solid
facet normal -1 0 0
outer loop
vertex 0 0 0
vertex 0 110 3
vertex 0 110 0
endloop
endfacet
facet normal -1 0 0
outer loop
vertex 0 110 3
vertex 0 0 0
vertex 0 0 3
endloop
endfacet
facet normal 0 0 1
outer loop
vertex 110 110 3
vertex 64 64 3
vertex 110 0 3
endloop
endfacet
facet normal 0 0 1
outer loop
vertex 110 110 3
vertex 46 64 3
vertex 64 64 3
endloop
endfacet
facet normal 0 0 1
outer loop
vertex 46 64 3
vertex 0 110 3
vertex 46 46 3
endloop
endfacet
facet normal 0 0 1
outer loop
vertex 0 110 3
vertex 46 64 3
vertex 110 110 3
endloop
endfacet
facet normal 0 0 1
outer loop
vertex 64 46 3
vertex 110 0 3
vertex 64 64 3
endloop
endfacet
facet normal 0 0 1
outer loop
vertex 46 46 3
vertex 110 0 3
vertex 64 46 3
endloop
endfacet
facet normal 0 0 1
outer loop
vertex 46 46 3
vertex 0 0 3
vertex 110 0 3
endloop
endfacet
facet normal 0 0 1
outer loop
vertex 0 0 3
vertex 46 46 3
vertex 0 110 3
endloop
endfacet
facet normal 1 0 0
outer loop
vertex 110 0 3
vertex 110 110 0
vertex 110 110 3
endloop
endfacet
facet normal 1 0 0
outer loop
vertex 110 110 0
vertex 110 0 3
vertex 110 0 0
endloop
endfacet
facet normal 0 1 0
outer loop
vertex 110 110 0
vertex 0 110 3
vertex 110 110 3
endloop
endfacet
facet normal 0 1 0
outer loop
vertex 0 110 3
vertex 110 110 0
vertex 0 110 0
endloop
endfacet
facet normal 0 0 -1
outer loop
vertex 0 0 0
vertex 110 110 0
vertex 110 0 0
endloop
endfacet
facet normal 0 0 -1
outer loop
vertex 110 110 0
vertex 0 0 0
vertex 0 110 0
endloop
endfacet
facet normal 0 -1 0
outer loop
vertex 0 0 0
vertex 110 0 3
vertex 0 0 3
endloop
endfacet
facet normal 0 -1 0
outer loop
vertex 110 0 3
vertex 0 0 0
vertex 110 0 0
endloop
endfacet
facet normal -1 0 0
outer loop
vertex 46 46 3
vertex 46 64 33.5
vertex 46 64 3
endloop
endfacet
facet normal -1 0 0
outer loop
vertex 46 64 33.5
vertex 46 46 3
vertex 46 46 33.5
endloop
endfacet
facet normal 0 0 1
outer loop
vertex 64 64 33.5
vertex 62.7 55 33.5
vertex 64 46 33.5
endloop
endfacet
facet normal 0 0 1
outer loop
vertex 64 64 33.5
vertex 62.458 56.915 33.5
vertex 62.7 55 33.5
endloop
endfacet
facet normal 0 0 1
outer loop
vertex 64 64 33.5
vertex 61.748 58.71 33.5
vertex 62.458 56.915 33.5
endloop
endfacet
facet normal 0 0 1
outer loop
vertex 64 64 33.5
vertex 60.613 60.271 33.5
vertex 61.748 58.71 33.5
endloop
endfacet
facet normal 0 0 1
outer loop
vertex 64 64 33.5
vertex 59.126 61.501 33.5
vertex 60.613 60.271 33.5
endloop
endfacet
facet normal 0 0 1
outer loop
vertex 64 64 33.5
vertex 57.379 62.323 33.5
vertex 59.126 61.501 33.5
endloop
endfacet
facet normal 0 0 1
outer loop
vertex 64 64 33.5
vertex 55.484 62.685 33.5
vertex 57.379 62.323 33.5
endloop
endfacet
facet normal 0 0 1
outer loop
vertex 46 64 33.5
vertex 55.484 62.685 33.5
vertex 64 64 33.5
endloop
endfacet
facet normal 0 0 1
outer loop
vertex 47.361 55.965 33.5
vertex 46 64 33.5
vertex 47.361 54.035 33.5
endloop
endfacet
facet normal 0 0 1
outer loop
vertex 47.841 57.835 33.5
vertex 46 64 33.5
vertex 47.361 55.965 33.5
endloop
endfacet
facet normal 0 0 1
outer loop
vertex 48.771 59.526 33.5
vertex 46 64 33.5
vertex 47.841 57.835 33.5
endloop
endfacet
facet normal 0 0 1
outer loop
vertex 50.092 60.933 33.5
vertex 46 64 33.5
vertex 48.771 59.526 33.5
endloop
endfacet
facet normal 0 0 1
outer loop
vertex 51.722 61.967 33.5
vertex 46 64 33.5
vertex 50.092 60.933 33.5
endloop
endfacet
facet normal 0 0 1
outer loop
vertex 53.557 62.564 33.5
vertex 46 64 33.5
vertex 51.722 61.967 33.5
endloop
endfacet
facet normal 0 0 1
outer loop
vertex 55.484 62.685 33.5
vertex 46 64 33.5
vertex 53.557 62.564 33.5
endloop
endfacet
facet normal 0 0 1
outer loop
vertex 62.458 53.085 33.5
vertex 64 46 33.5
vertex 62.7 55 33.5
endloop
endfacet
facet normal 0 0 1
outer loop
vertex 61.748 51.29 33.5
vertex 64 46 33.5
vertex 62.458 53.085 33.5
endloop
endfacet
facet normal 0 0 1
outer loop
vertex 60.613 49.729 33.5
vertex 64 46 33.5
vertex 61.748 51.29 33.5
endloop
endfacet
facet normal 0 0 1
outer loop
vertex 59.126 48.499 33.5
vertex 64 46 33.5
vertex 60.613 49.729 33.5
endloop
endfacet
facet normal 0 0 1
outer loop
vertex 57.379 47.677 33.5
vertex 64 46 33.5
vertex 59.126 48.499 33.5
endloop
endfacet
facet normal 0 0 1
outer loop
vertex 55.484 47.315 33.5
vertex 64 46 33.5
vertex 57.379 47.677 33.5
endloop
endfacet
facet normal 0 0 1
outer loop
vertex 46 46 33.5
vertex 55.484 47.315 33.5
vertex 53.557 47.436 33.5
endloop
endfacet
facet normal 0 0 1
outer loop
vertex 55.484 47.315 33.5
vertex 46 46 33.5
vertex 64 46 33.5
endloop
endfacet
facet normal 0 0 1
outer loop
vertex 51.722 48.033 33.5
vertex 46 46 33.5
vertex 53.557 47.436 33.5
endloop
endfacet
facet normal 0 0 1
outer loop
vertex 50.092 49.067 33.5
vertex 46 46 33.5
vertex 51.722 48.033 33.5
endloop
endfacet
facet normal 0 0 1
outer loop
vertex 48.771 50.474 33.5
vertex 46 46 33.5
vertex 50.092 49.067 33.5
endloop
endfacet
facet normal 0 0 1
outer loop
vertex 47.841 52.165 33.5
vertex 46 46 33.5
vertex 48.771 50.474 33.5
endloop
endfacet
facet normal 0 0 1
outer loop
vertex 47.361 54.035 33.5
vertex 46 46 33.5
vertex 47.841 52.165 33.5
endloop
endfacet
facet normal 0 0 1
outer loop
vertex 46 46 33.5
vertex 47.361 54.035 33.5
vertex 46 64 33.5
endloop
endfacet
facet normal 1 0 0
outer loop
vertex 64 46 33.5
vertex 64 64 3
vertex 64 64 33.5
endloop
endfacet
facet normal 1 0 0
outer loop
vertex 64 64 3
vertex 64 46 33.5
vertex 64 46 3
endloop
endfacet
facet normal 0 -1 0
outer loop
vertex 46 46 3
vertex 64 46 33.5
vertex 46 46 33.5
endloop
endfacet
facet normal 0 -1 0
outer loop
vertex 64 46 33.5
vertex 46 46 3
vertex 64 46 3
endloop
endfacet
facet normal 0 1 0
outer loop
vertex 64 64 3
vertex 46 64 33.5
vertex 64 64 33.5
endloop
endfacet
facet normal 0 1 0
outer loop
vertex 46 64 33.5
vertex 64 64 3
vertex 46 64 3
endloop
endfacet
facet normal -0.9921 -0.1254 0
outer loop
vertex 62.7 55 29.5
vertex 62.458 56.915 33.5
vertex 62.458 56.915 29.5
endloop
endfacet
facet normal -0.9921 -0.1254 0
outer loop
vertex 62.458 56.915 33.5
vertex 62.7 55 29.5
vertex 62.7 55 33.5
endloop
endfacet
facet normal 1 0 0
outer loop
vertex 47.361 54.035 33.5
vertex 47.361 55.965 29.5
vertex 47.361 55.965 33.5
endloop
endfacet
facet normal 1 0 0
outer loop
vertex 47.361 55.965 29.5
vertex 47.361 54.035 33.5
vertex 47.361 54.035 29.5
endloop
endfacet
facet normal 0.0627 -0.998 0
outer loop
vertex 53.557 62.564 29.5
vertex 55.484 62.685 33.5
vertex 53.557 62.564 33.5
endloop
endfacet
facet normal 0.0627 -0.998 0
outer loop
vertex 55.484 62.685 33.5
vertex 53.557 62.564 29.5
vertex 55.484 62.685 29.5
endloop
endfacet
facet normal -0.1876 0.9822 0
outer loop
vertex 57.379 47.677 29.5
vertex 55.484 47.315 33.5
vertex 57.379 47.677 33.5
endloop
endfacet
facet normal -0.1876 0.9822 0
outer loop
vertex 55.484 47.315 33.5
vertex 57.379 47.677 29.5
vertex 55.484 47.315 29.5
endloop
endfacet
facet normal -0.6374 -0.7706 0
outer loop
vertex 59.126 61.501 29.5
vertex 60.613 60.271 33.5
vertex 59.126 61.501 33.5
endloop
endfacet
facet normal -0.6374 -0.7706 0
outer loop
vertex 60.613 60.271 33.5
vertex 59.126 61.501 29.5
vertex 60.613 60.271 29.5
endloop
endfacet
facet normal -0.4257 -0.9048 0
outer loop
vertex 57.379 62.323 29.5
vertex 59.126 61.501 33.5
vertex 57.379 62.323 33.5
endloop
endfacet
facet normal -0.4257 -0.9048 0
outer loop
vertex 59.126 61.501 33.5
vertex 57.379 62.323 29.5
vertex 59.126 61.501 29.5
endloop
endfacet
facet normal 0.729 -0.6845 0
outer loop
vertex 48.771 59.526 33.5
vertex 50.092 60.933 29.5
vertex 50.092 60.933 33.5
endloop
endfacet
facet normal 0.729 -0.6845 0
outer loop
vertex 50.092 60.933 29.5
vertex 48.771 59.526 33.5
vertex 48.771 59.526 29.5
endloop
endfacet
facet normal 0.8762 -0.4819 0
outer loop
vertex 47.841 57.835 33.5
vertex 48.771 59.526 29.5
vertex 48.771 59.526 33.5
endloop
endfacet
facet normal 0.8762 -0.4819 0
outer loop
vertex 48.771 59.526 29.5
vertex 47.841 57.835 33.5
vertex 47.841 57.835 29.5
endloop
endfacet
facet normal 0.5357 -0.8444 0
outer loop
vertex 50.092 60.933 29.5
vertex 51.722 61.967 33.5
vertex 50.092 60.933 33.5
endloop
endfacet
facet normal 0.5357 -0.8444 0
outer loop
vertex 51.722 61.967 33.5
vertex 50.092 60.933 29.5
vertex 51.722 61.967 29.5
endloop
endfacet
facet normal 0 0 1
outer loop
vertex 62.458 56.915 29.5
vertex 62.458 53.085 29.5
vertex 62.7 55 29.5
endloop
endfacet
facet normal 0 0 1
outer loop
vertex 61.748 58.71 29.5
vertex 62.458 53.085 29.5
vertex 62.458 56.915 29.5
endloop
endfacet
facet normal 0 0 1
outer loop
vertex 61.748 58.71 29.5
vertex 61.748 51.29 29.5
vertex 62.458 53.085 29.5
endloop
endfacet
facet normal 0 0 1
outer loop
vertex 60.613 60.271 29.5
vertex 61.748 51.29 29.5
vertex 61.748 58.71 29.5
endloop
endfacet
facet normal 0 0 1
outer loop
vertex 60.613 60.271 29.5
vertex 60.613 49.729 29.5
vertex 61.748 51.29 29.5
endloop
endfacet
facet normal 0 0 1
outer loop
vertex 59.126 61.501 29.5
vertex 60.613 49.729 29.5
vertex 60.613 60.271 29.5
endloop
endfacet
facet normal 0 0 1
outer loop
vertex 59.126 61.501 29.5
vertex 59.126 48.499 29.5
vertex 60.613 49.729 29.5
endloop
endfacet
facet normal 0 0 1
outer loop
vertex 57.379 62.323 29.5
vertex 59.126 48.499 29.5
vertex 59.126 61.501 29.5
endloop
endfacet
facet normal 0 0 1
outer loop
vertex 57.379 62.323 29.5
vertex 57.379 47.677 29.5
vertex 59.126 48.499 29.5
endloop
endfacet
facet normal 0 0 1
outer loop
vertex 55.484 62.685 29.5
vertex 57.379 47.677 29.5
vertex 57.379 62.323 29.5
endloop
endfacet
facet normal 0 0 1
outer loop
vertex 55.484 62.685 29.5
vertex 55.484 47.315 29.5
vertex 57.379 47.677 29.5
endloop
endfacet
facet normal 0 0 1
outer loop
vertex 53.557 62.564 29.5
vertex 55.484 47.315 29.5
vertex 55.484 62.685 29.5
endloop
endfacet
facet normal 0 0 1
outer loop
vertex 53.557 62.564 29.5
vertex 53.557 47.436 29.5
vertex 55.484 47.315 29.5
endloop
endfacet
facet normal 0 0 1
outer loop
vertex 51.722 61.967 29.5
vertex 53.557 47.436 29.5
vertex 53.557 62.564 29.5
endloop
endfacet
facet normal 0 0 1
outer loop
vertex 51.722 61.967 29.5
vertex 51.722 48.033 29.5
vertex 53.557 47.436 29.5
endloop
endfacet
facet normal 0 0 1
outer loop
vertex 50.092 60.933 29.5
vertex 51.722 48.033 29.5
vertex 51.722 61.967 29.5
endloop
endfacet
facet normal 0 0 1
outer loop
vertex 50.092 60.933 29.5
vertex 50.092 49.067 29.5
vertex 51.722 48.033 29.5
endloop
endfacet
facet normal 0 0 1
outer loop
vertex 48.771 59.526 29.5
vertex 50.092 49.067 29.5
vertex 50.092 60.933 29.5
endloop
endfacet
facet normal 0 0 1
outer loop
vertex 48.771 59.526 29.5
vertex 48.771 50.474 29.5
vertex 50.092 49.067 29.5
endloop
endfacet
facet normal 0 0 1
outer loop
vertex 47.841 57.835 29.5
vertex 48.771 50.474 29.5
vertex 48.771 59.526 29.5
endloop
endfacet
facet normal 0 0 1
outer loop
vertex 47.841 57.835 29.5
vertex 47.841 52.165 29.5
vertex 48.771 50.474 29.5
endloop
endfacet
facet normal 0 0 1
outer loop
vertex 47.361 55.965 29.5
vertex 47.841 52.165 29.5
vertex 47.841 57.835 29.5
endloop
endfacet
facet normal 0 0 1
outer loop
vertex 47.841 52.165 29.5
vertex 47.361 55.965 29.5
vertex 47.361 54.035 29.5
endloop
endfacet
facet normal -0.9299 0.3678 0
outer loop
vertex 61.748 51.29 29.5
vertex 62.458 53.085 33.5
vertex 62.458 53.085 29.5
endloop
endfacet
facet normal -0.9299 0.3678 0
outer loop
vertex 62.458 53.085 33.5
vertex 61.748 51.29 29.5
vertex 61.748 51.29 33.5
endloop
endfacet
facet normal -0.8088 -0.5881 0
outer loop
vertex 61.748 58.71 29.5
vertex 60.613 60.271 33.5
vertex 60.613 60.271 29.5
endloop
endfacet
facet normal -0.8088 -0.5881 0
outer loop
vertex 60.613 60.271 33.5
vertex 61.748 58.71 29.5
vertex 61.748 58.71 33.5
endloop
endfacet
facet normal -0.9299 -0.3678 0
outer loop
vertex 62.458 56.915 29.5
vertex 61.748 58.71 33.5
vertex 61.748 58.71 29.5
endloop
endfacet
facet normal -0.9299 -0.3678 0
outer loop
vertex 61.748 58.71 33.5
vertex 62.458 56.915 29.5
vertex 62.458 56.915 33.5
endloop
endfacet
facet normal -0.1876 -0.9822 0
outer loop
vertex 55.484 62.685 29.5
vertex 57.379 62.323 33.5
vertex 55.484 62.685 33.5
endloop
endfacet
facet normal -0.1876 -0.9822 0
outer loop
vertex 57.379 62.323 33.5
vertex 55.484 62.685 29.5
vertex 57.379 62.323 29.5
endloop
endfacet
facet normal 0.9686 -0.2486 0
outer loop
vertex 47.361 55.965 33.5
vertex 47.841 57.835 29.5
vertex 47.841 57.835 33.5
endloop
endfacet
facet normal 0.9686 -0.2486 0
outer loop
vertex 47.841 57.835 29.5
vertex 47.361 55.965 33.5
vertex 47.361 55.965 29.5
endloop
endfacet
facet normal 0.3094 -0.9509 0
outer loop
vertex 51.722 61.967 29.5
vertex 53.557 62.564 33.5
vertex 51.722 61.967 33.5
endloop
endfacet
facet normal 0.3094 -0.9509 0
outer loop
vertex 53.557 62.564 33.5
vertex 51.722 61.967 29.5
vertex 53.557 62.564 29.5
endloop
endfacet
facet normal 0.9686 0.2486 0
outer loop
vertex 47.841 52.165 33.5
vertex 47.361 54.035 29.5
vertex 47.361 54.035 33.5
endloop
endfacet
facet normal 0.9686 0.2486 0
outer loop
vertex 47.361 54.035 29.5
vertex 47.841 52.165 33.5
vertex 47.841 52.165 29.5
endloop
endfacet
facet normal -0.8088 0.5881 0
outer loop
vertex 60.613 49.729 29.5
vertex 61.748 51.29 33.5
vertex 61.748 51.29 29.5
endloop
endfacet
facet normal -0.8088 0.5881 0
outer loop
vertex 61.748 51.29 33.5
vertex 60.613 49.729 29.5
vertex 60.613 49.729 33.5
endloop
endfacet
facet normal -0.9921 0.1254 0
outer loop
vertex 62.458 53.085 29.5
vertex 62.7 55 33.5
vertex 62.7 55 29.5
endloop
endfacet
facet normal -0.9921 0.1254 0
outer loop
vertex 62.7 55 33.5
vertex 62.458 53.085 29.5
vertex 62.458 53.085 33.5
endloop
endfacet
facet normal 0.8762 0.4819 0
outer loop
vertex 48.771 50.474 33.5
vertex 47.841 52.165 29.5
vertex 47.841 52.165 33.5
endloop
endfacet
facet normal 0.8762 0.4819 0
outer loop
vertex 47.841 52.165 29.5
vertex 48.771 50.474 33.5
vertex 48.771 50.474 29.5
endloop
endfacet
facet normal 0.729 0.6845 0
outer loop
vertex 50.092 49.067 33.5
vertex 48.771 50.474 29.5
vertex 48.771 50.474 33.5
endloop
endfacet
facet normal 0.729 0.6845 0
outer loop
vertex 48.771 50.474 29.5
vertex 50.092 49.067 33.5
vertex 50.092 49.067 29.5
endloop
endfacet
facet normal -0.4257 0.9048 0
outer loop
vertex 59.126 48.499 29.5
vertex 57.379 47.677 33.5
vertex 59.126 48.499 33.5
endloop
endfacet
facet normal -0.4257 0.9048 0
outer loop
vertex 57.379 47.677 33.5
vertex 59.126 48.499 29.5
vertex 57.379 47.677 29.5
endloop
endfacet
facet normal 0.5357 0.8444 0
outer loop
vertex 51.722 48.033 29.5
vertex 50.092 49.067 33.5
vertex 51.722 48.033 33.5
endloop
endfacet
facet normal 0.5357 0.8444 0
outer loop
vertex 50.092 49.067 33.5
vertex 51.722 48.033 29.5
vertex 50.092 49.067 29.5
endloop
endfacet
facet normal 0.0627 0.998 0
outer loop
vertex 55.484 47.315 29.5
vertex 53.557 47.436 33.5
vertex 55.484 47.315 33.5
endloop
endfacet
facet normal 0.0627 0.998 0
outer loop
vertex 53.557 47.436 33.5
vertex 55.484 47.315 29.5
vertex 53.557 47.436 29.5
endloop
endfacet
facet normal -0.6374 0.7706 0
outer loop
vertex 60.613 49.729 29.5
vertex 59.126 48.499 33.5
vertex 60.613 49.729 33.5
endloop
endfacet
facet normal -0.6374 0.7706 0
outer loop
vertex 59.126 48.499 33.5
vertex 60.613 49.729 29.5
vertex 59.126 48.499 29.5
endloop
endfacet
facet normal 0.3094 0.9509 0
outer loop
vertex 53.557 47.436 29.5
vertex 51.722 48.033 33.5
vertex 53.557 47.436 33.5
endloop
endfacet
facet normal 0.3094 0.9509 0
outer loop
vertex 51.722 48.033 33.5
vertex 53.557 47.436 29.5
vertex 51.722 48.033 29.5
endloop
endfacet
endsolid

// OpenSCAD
length = 110;
width = 110;
height = 3;

//Based on magnet size:
pillarSideLength = 18;
pillarSideOffset = .5;

magnetBaseInnerDiameter = 15.4;
magnetHeight = 4.0;

spaceBetweenCircles = 2;
wallThickness = spaceBetweenCircles;
pillarHeight = 15 * 2 + .5 + height;

difference() {
union(){
    cube([length, width, height]);


//----------------------------------


            
//---------------------------------------------------------------------
    
          

//----------------------------------------
   
    translate([length/2 - ((pillarSideLength)/2), width/2 - ((pillarSideLength)/2), 0])
        cube([pillarSideLength, pillarSideLength, pillarHeight]);
        

}
    translate([length/2,  width/2, pillarHeight - magnetHeight])
        cylinder(magnetHeight, d=magnetBaseInnerDiameter);

}
